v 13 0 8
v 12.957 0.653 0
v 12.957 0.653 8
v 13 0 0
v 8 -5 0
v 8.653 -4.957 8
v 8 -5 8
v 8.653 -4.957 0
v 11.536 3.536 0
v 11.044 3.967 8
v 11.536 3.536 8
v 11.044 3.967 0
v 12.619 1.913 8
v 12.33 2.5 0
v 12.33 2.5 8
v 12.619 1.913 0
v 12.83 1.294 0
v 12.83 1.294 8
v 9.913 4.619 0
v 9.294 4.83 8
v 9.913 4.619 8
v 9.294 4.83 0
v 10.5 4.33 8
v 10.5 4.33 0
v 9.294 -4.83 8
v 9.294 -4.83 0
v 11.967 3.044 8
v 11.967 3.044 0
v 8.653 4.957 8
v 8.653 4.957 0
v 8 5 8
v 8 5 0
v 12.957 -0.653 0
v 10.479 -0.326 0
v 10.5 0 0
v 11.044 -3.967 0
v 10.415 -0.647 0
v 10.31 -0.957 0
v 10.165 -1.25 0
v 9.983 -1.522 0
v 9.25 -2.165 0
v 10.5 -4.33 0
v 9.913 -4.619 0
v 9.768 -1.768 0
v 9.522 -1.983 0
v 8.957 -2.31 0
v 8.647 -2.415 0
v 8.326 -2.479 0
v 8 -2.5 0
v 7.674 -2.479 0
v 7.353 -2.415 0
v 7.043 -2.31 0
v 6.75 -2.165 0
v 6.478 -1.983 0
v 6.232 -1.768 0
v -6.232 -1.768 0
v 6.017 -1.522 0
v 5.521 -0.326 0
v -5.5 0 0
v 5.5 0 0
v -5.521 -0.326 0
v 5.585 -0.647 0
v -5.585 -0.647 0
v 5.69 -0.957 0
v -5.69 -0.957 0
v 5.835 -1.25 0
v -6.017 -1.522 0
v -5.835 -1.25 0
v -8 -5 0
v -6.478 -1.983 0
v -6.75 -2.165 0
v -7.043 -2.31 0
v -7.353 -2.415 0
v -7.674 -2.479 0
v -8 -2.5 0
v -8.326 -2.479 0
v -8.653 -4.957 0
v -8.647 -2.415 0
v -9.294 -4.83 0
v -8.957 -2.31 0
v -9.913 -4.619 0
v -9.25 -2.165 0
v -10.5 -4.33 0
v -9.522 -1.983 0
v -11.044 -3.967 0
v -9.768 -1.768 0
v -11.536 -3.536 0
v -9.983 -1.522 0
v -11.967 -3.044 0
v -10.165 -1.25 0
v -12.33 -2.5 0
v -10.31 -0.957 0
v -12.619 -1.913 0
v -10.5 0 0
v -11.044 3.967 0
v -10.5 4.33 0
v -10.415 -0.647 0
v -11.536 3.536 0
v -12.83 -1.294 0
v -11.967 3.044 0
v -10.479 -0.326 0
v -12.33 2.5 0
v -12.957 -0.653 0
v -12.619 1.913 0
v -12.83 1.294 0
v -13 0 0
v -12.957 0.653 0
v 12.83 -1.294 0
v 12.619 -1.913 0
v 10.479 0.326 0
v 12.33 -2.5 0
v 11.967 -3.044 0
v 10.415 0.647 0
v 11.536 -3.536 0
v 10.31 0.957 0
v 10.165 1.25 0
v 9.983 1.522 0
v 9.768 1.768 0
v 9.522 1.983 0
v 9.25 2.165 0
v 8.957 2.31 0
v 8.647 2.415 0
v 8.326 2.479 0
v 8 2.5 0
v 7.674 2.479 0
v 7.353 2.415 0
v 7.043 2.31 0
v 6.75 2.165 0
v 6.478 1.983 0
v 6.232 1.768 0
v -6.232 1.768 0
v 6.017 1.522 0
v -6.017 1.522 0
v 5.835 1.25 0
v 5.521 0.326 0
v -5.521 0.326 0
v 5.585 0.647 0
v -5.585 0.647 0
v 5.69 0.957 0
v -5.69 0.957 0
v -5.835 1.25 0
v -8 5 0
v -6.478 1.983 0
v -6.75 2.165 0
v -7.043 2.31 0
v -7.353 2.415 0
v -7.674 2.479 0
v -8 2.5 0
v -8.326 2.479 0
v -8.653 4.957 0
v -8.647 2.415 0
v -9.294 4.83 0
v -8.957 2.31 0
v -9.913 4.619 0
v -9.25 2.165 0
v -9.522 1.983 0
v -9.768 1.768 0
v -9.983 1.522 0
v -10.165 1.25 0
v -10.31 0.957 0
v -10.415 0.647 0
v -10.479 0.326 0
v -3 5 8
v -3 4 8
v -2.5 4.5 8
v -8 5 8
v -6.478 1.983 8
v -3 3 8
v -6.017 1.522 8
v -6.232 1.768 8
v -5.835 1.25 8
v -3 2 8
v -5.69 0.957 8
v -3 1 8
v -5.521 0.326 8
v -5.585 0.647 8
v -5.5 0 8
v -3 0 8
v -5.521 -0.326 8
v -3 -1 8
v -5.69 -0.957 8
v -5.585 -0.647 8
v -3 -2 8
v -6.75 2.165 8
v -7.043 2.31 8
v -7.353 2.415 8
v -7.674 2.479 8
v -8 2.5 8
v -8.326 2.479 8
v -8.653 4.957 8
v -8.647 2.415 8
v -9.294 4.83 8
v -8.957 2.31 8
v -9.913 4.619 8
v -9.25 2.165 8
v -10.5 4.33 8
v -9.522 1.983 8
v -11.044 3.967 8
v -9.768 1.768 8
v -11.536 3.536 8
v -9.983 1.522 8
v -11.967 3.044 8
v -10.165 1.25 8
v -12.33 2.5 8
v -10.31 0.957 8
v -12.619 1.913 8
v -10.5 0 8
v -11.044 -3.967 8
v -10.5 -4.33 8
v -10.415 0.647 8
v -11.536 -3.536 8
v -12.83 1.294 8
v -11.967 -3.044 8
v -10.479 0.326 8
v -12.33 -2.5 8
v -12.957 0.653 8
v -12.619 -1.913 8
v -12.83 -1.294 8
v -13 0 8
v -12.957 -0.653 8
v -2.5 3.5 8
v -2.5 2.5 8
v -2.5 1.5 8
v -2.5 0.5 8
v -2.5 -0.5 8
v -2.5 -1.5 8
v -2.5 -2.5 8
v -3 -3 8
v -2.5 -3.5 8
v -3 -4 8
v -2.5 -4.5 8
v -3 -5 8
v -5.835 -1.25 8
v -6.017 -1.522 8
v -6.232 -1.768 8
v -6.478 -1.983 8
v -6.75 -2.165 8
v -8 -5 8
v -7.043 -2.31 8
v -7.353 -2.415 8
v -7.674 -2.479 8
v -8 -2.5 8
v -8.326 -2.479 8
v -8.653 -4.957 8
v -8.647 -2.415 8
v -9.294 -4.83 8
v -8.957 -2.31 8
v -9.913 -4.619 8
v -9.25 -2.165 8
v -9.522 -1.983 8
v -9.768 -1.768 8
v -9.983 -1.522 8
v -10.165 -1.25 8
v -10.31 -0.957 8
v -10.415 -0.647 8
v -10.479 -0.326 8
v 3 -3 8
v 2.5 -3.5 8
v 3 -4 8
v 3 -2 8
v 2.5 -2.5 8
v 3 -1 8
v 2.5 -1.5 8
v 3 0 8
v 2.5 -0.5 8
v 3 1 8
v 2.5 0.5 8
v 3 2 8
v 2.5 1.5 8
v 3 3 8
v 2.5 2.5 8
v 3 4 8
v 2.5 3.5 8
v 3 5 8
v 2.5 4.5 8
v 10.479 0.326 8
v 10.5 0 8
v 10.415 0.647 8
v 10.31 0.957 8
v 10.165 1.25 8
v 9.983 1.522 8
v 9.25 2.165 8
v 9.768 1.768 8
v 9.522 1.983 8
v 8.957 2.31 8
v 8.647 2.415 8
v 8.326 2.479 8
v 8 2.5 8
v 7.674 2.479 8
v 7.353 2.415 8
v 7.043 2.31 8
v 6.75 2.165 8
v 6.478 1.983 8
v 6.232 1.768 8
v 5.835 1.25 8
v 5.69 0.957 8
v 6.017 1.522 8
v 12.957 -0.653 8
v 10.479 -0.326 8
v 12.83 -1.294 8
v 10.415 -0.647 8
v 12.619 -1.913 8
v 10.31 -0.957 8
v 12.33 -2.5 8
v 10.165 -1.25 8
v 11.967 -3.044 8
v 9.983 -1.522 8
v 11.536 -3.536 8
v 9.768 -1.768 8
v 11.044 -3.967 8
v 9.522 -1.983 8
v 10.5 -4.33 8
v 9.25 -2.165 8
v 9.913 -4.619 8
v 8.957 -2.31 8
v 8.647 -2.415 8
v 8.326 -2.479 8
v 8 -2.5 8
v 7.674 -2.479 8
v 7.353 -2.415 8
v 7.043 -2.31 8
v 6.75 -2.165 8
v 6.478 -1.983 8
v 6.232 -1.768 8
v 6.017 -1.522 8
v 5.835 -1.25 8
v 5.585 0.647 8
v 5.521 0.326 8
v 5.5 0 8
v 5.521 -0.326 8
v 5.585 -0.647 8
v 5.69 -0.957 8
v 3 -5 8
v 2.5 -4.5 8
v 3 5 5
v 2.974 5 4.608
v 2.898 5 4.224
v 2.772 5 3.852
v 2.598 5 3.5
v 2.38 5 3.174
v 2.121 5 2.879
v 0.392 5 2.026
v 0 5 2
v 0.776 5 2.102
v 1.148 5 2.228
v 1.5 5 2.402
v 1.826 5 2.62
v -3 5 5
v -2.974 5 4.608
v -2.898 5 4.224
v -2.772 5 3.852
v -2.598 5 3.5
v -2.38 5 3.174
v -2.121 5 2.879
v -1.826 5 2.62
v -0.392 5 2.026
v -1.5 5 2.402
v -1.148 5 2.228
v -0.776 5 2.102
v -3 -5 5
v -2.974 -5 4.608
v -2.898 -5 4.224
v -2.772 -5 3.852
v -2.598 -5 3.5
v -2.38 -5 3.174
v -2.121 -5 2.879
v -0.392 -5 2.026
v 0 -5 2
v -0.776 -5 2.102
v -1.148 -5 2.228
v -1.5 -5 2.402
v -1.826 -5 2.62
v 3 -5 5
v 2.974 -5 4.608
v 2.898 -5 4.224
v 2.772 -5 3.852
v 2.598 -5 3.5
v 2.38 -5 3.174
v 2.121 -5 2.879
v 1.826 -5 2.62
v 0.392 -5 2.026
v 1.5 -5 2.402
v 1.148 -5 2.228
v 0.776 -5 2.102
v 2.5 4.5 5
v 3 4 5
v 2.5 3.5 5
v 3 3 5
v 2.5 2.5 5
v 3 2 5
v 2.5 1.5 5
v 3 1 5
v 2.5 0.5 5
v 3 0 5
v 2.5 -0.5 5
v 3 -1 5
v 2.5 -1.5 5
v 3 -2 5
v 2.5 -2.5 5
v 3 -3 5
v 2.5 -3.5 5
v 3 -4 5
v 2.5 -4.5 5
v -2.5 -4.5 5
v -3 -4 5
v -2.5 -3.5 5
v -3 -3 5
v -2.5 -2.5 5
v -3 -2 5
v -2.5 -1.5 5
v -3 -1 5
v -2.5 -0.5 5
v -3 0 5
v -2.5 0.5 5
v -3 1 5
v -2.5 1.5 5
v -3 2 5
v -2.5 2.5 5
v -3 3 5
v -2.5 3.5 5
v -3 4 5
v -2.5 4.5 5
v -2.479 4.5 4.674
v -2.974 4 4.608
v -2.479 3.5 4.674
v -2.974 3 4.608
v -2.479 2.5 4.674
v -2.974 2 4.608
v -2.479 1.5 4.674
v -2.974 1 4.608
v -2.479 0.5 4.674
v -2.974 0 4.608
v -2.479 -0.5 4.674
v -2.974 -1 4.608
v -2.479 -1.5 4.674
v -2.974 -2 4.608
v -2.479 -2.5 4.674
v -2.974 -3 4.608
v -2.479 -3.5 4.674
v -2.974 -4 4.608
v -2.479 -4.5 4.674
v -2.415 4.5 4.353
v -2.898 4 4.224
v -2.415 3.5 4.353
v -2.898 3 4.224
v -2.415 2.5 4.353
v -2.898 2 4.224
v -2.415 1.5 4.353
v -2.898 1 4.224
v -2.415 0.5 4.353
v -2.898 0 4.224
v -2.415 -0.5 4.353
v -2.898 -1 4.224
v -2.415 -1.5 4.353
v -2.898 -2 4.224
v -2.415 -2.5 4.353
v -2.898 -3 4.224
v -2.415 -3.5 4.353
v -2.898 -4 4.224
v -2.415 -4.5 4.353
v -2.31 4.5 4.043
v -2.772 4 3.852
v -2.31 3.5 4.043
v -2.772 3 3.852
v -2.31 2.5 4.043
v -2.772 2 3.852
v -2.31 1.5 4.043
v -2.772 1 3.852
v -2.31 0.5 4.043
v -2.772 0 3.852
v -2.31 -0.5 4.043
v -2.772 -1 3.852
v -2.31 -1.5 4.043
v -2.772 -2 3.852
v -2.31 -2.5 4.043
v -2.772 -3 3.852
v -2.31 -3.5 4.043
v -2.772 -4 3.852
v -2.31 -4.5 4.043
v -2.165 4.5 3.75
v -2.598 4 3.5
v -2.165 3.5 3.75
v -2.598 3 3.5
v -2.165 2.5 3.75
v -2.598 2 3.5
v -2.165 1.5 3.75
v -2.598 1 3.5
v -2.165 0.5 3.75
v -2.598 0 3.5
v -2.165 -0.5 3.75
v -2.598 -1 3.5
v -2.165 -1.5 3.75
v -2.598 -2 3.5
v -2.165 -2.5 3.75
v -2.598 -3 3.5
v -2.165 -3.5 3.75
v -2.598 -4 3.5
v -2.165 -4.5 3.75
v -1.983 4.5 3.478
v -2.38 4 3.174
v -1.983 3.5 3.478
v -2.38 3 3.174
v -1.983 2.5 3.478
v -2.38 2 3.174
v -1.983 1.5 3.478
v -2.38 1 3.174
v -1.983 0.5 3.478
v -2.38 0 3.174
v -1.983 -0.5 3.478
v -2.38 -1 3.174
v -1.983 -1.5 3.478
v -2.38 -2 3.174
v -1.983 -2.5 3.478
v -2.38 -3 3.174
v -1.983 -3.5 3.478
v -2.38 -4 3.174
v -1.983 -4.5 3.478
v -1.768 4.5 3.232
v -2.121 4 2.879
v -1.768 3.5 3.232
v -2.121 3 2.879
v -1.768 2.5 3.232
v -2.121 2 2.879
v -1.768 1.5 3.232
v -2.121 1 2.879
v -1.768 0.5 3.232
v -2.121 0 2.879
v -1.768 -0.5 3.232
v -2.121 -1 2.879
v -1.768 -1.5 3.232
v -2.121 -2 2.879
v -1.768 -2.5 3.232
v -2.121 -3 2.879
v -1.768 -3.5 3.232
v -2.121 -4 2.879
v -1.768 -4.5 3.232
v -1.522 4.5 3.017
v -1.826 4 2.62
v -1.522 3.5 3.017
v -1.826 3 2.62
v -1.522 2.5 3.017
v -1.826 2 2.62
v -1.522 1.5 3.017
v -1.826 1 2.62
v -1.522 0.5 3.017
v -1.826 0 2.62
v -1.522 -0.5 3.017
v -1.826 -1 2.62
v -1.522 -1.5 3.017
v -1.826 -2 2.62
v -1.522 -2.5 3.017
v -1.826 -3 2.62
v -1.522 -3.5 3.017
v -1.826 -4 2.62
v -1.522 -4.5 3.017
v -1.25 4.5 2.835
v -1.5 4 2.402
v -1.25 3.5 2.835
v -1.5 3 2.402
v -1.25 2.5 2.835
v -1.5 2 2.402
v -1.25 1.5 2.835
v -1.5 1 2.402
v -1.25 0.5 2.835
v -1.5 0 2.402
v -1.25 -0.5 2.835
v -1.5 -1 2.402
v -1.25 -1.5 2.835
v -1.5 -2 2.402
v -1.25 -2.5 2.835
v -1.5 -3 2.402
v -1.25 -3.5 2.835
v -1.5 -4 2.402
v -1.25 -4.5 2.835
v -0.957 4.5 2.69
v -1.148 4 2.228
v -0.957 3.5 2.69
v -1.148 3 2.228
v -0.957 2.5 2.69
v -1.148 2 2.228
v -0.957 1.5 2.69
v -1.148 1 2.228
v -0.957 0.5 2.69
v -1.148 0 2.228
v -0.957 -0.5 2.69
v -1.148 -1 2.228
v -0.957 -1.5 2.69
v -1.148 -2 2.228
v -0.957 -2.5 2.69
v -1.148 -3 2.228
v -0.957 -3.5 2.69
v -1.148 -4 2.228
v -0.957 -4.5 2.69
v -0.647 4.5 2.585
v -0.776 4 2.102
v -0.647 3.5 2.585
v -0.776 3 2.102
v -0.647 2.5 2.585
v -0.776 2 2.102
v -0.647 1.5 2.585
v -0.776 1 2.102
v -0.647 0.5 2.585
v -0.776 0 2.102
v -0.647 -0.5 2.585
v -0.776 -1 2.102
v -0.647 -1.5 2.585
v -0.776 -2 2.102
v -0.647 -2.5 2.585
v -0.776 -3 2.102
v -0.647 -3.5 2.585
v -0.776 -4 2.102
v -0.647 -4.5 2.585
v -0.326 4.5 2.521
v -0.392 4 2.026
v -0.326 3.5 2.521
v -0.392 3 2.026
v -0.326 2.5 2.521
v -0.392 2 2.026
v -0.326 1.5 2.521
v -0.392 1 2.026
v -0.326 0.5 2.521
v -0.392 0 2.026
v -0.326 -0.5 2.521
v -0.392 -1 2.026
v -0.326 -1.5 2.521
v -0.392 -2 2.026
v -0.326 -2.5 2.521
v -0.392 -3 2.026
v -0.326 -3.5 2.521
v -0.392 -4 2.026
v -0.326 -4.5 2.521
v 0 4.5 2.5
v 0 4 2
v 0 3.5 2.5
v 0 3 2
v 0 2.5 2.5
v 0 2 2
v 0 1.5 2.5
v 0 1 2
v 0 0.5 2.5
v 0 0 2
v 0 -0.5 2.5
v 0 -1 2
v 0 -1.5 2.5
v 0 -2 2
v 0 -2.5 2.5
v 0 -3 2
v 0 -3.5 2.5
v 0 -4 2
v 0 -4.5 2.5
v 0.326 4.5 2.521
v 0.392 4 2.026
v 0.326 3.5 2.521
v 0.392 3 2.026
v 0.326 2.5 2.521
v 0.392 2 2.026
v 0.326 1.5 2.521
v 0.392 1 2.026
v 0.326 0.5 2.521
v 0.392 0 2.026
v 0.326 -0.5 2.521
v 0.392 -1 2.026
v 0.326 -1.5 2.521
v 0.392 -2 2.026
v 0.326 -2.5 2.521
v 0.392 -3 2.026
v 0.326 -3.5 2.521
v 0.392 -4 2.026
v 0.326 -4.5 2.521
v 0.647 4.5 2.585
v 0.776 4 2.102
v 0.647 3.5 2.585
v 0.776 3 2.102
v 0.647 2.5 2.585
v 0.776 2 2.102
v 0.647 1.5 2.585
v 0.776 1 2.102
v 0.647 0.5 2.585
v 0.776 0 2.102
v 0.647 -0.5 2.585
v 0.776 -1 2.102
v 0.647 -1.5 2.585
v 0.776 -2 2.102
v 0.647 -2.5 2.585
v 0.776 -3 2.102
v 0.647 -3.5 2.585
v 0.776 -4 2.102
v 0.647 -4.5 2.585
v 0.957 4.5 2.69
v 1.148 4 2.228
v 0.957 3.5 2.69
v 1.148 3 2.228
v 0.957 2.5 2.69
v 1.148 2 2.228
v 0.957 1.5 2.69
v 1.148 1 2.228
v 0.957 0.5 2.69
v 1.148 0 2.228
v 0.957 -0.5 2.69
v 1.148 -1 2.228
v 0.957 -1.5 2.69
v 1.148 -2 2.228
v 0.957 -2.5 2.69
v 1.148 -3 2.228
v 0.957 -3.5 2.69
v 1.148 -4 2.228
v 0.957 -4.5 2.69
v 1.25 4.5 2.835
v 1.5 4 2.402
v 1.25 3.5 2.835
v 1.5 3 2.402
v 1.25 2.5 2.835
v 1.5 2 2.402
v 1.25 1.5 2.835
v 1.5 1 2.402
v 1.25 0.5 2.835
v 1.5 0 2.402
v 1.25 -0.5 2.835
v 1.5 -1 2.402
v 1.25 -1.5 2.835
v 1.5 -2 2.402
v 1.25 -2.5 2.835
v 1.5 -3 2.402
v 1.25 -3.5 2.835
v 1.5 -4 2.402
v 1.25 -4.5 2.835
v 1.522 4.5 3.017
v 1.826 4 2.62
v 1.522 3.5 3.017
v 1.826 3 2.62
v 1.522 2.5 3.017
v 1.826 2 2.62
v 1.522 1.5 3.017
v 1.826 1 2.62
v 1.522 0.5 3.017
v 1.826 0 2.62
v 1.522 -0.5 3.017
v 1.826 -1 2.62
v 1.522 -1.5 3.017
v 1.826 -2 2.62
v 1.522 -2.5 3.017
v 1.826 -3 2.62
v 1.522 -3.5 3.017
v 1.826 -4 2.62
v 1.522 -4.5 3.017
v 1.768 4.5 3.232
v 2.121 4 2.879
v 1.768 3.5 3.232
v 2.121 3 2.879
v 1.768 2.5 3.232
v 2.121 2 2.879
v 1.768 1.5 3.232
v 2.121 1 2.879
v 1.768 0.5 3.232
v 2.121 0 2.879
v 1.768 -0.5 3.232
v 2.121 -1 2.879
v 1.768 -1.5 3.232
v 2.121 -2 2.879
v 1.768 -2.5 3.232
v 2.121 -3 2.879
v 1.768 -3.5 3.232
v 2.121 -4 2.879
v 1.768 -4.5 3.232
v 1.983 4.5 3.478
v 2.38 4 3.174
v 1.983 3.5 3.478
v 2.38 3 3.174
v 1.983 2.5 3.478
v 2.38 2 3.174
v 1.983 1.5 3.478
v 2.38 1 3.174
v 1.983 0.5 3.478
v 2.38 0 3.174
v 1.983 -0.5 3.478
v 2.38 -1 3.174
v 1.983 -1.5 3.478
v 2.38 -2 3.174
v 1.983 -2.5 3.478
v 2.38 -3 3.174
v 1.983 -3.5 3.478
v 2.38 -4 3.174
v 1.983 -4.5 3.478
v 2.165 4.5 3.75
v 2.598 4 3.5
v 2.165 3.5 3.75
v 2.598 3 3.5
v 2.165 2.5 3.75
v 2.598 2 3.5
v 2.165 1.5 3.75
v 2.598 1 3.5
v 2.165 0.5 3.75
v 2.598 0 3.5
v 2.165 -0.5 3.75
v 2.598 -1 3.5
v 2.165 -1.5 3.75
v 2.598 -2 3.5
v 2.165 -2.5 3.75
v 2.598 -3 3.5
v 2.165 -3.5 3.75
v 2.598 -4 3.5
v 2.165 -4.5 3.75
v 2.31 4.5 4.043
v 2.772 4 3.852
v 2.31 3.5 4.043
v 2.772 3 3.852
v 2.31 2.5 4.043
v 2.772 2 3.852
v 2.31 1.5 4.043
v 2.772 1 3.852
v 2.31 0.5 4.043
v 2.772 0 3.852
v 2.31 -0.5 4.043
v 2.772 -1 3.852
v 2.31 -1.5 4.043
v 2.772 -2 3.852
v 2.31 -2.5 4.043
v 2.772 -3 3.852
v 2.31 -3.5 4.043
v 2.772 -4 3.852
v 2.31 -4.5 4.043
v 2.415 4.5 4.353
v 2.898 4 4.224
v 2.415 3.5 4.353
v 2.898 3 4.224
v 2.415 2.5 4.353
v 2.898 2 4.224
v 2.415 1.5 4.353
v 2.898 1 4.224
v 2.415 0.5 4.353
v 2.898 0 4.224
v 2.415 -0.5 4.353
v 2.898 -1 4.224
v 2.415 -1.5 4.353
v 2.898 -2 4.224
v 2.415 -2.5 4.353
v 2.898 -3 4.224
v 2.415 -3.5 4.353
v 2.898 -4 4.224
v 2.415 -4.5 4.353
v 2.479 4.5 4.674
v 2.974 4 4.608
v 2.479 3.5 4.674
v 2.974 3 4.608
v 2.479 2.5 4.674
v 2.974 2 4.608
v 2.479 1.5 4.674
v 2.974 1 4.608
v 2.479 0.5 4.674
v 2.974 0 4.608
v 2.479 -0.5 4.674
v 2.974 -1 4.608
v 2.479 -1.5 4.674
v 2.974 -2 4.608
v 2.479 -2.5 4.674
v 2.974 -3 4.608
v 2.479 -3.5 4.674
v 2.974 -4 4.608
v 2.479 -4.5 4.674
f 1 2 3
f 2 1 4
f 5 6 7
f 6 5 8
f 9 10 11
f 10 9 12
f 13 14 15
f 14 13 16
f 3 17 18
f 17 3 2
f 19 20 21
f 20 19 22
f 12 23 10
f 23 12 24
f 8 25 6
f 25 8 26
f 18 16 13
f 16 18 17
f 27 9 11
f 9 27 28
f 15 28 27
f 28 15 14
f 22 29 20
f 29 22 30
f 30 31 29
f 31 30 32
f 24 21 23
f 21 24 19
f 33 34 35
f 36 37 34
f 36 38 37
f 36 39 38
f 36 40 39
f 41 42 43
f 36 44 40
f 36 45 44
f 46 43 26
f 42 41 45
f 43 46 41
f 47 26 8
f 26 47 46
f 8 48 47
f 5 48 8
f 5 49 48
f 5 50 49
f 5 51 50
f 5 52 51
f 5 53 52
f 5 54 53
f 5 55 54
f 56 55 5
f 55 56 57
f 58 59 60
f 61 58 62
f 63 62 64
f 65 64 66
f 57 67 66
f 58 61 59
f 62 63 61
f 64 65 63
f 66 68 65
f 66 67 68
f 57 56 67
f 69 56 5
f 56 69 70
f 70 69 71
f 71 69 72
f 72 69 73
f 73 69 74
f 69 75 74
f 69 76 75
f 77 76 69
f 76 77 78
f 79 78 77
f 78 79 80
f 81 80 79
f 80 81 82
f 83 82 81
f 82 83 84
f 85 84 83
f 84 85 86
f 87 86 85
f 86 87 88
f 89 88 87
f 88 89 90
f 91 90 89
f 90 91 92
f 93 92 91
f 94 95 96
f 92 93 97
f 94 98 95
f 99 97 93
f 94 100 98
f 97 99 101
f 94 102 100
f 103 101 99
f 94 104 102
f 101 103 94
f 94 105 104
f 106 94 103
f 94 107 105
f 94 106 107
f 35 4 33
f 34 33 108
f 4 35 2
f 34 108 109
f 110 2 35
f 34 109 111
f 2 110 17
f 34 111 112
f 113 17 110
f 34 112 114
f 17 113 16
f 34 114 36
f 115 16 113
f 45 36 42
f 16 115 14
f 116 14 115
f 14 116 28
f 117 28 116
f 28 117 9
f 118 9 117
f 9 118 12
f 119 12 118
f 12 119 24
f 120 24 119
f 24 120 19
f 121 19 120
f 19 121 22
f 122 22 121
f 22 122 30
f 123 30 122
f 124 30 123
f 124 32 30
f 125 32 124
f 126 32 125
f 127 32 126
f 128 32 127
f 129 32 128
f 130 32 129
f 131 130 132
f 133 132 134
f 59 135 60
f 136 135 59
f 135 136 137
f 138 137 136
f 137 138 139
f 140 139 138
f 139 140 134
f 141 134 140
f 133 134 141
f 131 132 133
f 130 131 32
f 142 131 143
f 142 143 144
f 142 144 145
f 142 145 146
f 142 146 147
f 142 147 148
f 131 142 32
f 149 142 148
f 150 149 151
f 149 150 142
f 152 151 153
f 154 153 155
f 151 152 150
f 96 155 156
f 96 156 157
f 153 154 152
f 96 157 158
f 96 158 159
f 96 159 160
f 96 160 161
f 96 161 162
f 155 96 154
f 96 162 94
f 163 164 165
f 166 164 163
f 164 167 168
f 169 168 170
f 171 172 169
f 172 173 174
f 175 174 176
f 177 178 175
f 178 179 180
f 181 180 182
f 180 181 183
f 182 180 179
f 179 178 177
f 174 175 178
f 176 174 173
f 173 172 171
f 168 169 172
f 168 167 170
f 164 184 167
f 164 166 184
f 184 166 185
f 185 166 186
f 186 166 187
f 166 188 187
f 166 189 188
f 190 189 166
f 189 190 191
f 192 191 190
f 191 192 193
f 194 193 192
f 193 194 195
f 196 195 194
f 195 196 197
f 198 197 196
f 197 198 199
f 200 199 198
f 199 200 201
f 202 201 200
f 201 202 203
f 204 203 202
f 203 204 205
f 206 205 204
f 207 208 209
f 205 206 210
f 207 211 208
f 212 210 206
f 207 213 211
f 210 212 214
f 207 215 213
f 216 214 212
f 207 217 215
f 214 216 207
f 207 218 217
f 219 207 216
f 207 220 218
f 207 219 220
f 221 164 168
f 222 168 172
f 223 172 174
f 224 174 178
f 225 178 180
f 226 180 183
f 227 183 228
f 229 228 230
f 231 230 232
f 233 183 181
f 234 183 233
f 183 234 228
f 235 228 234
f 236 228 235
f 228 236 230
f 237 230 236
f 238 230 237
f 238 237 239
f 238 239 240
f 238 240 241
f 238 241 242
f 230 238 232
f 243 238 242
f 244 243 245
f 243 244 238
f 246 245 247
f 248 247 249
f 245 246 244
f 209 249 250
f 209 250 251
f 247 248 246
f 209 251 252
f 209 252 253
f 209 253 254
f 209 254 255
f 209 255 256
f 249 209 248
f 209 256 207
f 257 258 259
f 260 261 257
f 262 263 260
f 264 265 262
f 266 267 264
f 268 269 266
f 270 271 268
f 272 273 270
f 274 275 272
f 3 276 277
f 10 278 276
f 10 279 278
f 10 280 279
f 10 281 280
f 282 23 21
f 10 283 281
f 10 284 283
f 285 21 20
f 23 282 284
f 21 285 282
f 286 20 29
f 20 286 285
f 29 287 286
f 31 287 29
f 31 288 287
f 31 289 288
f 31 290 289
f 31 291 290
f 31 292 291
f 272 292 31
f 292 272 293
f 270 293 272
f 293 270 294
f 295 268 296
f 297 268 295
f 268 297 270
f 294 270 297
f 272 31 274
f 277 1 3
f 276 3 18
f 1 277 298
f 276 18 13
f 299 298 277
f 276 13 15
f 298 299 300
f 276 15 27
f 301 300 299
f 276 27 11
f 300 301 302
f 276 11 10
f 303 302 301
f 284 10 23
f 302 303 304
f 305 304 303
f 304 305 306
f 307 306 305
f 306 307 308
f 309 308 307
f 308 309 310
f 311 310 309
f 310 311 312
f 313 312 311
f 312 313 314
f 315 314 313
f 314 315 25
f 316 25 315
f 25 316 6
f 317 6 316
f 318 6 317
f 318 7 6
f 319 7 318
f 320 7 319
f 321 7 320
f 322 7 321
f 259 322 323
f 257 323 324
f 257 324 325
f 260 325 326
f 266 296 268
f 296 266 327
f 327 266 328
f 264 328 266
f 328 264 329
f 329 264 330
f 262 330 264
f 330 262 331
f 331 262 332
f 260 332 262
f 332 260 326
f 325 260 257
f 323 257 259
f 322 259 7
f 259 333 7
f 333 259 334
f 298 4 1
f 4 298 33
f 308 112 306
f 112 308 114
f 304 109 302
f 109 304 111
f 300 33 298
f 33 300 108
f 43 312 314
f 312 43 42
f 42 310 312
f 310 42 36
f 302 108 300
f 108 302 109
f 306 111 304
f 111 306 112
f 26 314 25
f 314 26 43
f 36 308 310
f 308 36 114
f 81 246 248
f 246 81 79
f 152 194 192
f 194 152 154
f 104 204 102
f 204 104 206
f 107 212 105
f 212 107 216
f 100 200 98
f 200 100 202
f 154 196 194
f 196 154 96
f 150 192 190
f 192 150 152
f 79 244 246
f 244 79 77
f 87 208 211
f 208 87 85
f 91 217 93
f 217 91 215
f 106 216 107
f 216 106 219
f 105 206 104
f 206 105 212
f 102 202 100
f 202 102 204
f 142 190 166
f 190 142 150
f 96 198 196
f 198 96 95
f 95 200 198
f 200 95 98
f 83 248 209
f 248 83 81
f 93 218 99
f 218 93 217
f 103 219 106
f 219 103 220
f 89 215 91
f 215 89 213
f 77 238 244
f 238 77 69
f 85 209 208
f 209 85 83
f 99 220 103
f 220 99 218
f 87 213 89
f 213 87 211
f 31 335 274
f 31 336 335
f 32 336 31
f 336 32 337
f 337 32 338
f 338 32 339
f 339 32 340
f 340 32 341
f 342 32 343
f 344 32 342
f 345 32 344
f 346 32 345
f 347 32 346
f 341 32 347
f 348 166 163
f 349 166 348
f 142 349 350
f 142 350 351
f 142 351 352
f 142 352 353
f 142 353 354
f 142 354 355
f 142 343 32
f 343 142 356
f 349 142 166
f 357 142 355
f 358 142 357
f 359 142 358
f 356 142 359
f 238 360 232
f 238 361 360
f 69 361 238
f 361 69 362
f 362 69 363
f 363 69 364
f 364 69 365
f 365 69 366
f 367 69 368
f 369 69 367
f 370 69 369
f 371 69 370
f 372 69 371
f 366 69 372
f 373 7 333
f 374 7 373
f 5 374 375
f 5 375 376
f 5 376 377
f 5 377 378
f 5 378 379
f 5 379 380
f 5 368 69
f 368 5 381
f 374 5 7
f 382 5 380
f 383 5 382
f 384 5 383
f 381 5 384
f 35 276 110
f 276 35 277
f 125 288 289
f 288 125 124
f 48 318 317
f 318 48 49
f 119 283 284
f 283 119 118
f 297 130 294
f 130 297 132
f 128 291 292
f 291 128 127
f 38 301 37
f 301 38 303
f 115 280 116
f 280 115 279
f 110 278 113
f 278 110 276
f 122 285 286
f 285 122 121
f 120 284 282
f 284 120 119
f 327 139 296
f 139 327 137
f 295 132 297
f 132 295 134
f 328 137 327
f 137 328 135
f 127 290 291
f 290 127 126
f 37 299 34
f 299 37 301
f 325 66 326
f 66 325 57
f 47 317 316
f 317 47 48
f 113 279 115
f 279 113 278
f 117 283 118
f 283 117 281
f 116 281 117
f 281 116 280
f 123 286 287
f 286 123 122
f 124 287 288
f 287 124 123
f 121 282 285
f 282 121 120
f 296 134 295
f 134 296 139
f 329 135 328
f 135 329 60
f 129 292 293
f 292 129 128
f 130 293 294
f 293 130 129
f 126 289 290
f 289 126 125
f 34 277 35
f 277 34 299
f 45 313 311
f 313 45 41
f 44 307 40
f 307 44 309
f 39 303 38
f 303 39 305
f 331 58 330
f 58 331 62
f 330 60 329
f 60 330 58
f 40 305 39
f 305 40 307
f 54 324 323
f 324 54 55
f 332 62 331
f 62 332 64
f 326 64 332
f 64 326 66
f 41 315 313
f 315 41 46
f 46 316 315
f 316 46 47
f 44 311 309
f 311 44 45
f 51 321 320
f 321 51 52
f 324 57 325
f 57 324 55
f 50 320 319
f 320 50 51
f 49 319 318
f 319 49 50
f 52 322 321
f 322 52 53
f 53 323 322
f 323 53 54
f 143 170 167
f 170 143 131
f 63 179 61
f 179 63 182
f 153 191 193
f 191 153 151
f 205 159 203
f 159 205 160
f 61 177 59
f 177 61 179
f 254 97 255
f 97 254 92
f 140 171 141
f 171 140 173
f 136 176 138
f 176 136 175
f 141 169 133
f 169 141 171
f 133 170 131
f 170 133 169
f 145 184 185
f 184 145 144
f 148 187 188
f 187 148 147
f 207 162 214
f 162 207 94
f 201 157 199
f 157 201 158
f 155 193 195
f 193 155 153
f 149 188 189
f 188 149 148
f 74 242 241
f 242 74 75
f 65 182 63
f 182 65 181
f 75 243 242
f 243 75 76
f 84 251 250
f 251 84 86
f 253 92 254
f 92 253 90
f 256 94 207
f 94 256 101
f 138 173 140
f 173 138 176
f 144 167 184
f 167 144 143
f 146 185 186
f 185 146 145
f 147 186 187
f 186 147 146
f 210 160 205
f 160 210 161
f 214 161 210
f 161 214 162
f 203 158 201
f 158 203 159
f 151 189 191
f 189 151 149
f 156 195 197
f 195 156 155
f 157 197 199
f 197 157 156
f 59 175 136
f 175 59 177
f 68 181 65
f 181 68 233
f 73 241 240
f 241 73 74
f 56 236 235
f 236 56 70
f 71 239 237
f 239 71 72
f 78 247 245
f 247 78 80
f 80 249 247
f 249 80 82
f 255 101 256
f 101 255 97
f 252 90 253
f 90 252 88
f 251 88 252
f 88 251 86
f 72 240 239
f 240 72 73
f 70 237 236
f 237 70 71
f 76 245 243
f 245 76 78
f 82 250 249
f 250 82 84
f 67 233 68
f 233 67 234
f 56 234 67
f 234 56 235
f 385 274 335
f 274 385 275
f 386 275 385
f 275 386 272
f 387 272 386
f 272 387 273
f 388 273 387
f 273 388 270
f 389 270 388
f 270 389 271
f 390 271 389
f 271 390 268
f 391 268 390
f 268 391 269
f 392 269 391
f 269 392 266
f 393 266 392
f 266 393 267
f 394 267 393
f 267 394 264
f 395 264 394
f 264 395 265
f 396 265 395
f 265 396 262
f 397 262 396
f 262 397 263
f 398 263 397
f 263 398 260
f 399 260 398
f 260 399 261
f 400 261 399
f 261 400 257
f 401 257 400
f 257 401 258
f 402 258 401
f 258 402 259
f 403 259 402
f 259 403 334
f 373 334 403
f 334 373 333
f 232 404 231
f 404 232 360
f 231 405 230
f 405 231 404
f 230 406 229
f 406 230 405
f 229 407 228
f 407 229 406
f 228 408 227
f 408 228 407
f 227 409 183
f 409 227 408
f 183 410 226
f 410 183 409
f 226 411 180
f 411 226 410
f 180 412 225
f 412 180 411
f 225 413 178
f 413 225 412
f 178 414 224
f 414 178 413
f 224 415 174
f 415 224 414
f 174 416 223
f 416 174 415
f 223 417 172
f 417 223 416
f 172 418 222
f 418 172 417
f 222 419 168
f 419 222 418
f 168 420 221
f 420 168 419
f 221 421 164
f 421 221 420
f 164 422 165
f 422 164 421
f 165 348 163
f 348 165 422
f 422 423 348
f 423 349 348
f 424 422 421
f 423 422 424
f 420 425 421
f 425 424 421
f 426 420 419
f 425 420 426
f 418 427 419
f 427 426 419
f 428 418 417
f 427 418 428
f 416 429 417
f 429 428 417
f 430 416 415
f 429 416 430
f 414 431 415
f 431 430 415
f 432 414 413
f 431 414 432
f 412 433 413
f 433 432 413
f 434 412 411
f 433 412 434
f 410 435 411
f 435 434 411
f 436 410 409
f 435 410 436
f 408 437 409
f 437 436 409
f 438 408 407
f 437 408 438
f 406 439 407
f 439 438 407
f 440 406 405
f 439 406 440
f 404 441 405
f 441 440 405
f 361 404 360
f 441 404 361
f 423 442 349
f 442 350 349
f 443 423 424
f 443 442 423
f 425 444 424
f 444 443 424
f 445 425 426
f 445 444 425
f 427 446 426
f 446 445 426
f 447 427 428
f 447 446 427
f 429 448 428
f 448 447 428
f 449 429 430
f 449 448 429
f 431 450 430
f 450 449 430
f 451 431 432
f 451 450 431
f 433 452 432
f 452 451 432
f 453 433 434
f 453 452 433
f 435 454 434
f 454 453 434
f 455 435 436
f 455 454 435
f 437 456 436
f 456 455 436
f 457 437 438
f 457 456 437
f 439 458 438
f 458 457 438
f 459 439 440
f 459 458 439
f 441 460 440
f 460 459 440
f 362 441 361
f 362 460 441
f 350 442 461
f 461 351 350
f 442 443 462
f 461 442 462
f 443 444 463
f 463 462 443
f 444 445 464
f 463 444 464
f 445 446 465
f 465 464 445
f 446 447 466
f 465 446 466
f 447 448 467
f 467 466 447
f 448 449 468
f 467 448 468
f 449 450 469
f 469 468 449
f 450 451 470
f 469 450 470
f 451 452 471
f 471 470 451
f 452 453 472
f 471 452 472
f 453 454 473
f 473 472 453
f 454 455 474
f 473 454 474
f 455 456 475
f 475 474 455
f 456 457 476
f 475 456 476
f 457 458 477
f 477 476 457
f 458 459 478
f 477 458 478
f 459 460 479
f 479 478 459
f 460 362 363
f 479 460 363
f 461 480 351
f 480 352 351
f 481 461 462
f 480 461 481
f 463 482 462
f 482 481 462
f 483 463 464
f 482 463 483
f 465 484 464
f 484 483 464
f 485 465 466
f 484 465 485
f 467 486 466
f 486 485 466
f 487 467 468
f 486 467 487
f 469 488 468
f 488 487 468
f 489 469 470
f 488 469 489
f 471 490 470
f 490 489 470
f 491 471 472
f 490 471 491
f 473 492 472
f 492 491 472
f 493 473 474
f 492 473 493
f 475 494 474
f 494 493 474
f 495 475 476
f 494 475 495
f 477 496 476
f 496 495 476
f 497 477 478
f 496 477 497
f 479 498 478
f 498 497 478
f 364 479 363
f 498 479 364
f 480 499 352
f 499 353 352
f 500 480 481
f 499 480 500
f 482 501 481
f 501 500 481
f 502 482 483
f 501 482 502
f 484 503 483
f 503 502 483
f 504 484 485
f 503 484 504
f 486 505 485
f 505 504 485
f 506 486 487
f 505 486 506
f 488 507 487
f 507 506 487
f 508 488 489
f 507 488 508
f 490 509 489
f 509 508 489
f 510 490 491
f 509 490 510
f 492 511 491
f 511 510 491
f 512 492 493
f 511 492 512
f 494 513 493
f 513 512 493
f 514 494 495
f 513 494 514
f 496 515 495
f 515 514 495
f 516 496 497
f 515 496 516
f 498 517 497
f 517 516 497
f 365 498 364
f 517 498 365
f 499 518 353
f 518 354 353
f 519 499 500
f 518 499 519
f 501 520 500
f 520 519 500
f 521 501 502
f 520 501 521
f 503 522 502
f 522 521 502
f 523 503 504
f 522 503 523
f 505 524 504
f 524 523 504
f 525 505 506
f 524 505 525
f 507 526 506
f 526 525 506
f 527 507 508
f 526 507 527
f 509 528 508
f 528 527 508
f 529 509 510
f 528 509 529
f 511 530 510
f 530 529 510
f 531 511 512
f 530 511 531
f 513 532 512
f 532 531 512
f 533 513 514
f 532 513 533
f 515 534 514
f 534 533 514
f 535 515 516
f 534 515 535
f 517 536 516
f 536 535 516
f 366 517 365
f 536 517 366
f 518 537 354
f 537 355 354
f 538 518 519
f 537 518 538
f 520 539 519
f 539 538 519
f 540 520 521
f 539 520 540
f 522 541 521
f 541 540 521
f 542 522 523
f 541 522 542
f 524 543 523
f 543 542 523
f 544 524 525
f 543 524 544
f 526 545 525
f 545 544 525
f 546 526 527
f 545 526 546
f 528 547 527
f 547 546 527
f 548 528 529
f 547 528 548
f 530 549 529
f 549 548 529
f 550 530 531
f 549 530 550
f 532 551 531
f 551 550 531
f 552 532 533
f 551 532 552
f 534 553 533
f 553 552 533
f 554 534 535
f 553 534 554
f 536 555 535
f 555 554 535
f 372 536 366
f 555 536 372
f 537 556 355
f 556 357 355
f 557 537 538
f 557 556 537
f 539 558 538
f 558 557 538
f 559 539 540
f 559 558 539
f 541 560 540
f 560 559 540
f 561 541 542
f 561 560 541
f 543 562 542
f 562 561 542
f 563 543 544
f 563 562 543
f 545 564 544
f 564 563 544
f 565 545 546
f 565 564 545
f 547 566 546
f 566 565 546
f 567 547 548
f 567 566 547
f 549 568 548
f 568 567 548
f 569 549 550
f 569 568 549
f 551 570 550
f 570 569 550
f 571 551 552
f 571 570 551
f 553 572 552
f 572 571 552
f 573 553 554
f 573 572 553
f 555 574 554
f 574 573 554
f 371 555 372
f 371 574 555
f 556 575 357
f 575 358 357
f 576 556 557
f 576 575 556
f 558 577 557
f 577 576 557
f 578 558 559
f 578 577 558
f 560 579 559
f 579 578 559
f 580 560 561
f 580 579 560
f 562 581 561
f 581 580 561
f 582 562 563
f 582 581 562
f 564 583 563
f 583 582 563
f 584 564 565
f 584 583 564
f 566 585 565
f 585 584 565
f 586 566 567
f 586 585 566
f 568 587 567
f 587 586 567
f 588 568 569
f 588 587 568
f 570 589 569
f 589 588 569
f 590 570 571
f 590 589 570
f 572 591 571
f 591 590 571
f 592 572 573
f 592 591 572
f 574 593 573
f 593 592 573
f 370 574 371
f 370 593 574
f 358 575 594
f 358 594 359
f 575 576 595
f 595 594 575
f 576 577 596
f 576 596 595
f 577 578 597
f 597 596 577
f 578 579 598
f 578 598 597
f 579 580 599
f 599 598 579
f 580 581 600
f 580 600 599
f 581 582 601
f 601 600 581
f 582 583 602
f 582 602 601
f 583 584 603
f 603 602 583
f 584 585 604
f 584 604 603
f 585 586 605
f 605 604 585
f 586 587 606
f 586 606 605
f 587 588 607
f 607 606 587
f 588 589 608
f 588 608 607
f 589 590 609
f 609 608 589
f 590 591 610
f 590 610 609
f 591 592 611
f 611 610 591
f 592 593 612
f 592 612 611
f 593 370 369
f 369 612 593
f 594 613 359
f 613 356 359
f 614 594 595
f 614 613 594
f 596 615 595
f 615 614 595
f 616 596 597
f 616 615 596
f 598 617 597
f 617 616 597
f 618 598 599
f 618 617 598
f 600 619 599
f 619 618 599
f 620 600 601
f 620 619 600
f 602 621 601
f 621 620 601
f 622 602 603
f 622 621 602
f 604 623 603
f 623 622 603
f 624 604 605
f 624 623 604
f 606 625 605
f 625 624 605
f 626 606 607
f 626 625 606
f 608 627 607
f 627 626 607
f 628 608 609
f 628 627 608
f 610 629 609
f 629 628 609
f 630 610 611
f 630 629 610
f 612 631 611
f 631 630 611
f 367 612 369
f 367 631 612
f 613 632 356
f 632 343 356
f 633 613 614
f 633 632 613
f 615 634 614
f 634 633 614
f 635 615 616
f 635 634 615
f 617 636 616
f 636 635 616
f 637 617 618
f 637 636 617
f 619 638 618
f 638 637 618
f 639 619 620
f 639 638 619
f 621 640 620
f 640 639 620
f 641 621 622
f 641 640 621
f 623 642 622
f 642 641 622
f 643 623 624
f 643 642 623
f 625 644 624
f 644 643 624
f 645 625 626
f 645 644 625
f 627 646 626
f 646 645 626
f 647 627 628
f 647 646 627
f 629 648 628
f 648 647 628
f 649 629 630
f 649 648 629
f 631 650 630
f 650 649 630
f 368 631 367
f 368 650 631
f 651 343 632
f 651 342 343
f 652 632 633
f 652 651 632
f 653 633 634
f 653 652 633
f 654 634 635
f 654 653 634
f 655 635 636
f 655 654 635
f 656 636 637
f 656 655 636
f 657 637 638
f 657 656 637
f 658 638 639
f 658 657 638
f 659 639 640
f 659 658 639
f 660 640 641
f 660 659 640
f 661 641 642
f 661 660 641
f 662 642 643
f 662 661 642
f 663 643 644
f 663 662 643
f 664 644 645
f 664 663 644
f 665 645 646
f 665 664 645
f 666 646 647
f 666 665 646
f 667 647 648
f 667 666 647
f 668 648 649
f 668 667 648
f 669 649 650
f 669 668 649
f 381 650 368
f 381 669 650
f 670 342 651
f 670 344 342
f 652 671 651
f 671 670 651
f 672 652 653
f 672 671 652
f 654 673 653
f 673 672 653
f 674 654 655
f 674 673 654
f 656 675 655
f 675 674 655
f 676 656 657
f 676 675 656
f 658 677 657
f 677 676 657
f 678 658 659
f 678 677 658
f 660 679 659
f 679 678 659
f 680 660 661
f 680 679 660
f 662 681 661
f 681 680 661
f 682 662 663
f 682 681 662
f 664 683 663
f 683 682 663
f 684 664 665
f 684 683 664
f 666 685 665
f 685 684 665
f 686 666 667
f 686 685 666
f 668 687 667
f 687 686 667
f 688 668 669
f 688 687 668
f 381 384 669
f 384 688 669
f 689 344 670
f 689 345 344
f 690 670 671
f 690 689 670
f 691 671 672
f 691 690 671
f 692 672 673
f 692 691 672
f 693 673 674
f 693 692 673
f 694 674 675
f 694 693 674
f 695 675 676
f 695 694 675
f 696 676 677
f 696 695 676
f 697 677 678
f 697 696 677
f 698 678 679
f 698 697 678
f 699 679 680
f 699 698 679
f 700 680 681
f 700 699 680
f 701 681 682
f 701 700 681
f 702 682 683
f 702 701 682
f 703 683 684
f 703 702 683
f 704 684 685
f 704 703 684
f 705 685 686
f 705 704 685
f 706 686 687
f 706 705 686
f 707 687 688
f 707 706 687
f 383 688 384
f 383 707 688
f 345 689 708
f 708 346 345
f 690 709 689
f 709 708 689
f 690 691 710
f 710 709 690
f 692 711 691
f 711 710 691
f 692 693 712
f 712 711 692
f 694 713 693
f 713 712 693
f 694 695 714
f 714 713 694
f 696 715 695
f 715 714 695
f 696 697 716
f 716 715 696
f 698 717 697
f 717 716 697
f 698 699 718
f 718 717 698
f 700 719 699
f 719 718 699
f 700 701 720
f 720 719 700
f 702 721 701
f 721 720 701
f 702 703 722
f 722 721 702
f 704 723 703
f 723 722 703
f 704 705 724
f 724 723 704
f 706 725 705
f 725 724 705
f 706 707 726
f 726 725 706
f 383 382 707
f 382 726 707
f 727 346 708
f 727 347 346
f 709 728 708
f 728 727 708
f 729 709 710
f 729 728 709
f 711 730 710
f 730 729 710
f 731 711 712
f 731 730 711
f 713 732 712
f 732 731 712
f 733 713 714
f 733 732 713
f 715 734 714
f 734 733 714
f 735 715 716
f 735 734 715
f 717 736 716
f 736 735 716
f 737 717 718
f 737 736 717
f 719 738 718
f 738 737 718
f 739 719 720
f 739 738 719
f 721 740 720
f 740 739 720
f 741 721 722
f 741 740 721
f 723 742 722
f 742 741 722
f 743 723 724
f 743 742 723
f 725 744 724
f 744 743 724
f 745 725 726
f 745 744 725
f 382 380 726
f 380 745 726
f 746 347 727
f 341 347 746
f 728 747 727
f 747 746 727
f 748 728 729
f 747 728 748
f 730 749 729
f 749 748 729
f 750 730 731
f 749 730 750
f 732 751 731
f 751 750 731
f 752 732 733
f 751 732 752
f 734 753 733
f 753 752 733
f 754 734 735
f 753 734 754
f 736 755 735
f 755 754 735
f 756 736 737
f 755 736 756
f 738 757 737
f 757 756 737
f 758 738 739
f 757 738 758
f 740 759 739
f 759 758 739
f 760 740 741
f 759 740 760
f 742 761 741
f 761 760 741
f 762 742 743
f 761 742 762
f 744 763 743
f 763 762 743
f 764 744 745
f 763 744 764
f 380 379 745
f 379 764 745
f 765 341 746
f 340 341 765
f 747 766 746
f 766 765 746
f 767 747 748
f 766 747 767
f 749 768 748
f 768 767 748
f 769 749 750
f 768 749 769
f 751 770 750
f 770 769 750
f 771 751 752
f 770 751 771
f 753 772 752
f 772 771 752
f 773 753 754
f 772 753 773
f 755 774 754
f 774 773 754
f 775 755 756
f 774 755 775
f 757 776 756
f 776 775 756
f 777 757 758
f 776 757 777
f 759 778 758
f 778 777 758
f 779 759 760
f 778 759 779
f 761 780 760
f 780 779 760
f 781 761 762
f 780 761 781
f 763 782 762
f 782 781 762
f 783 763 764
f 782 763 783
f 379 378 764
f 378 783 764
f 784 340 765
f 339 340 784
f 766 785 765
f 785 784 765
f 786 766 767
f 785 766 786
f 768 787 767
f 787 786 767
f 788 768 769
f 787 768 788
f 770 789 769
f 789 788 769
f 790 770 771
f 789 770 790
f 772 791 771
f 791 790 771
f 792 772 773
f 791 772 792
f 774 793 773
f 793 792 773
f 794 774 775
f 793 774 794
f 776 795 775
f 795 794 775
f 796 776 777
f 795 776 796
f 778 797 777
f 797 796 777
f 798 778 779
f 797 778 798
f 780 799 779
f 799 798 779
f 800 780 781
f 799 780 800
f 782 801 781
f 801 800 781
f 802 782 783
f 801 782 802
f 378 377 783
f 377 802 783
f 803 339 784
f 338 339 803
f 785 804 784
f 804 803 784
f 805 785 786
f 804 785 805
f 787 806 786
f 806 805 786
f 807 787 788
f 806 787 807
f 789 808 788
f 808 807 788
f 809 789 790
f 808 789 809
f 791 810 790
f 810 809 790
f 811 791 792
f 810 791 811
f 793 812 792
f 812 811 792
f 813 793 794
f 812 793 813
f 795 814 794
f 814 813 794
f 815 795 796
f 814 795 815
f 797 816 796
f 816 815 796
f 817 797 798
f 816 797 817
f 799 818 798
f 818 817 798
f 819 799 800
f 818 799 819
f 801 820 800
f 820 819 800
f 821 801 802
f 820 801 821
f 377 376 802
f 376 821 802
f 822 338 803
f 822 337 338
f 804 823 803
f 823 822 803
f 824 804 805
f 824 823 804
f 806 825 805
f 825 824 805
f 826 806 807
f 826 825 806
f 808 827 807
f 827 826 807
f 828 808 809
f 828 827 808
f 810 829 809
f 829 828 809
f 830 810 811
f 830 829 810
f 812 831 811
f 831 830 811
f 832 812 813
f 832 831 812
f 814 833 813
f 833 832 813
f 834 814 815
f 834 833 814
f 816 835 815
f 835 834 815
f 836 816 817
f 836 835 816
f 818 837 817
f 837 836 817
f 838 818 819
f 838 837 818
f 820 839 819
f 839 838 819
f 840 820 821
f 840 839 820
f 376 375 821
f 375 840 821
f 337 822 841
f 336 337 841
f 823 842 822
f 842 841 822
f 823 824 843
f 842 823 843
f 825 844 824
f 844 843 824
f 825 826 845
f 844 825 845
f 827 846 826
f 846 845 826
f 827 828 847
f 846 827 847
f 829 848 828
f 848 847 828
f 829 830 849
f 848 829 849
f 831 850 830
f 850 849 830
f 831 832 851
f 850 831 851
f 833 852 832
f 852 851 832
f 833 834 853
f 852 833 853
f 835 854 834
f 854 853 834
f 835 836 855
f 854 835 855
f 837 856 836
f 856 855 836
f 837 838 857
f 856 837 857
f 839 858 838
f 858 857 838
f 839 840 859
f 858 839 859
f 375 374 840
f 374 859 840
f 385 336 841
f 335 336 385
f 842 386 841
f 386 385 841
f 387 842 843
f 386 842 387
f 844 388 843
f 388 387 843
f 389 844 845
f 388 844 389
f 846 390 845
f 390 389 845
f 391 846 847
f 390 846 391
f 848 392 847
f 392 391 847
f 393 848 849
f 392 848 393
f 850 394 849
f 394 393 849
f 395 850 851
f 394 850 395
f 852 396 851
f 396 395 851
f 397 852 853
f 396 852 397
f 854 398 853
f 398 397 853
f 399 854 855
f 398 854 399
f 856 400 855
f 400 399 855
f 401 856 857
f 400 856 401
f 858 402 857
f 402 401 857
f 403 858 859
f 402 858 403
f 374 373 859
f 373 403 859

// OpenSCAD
//###############################################################################
//#                                                                             #
//###############################################################################
//#    Copyright 2020 Dirk Heisswolf                                            #
//#    This file is part of the DIY Laser Bed project.                          #
//#                                                                             #
//#    This project is free software: you can redistribute it and/or modify     #
//#    it under the terms of the GNU General Public License as published by     #
//#    the Free Software Foundation, either version 3 of the License, or        #
//#    (at your option) any later version.                                      #
//#                                                                             #
//#    This project is distributed in the hope that it will be useful,          #
//#    but WITHOUT ANY WARRANTY; without even the implied warranty of           #
//#    MERCHANTABILITY or FITNESS FOR A PARTICULAR PURPOSE.  See the            #
//#    GNU General Public License for more details.                             #
//#                                                                             #
//#    You should have received a copy of the GNU General Public License        #
//#    along with this project.  If not, see <http://www.gnu.org/licenses/>.    #
//#                                                                             #
//###############################################################################
//# Description:                                                                #
//#   A fitting to place a thermometer in water flow of a 6mm hose.             #
//#                                                                             #
//###############################################################################
//# Version History:                                                            #
//#   February 27, 2020                                                         #
//#      - Initial release                                                      #
//#                                                                             #
//###############################################################################
//Parameters
$d_cable     =  6;                  //diameter of the cable
$fn          = 48;

module cable_bracket() {
    //Body
    difference() {
        union() {
            translate([($d_cable/2)+5,0,0])  cylinder($d_cable+2,d=10);
            translate([-($d_cable/2)-5,0,0]) cylinder($d_cable+2,d=10);
            translate([0,0,($d_cable/2)+1]) cube([$d_cable+10,10,$d_cable+2],true);            
        }
        union() {
            translate([($d_cable/2)+5,0,-1])  cylinder($d_cable+4,d=5);
            translate([-($d_cable/2)-5,0,-1]) cylinder($d_cable+4,d=5);
            translate([0,0,$d_cable+2]) cube([$d_cable,12,$d_cable],true);          
            translate([0,6,$d_cable-1]) rotate([90,0,0]) cylinder(12,d=$d_cable);
        }
    }
    //Grip
      translate([0,0,2+$d_cable/2]) rotate([0,0,0])    linear_extrude($d_cable/2) grip_profile();
      translate([0,0,2+$d_cable/2]) rotate([0,0,180])  linear_extrude($d_cable/2) grip_profile();
      translate([0,0,2+$d_cable/2]) rotate([90,180,0]) rotate_extrude(angle=180) grip_profile();

        

}

module grip_profile() {
    polygon([[$d_cable/2+1,-5],
             [$d_cable/2,-5],
             [-0.5+$d_cable/2,-4.5],
             [$d_cable/2,-4],
             [-0.5+$d_cable/2,-3.5],
             [$d_cable/2,-3],
             [-0.5+$d_cable/2,-2.5],
             [$d_cable/2,-2],
             [-0.5+$d_cable/2,-1.5],
             [$d_cable/2,-1],
             [-0.5+$d_cable/2,-0.5],
             [$d_cable/2,-0],
             [-0.5+$d_cable/2,0.5],
             [$d_cable/2,1],
             [-0.5+$d_cable/2,1.5],
             [$d_cable/2,2],
             [-0.5+$d_cable/2,2.5],
             [$d_cable/2,3],
             [-0.5+$d_cable/2,3.5],
             [$d_cable/2,4],
             [-0.5+$d_cable/2,4.5],
             [$d_cable/2,5],    
             [$d_cable/2+1,5],    
    ]);
    
    
}

//if ($preview) {

    cable_bracket();
//}
